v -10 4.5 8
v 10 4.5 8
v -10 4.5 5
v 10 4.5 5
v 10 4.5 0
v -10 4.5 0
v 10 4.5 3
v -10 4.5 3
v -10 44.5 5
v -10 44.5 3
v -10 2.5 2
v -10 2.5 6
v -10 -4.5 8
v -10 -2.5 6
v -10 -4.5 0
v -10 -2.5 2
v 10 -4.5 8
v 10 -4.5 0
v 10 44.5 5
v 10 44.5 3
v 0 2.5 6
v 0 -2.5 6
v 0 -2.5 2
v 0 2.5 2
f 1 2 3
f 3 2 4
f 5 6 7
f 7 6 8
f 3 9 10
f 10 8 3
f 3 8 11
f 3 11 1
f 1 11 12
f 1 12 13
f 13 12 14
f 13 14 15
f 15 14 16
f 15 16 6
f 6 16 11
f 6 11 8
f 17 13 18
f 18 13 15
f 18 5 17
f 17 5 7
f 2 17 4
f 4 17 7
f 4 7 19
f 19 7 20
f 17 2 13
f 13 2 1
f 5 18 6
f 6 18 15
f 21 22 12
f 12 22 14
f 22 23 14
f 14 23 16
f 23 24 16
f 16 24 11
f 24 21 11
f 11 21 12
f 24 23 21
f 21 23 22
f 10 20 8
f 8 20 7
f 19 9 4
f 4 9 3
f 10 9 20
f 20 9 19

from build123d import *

# Parameters (mm, degrees)
SKETCH2_W           = 20
SKETCH2_H           = 9
BOSS_EXTRUDE1_DEPTH = 8
SKETCH3_W           = 4
SKETCH3_H           = 5
CUT_EXTRUDE1_DEPTH  = 10
SKETCH6_W           = 20
SKETCH6_H           = 2
BOSS_EXTRUDE3_DEPTH = 40


with BuildPart() as part:
    # Sketch2 → Boss-Extrude1 (new body)
    with BuildSketch(Plane.XY):
        Rectangle(SKETCH2_W, SKETCH2_H)
    extrude(amount=BOSS_EXTRUDE1_DEPTH)

    # Sketch3 → Cut-Extrude1 (cut)
    with BuildSketch(Plane.ZY.offset(10)):
        with Locations((4, 0)):
            Rectangle(SKETCH3_W, SKETCH3_H)
    extrude(amount=-CUT_EXTRUDE1_DEPTH, mode=Mode.SUBTRACT)

    # Sketch6 → Boss-Extrude3 (add)
    with BuildSketch(Plane(origin=(0, 4.5, 0), x_dir=(1, 0, 0), z_dir=(0, 1, 0))):
        with Locations((0, -4)):
            Rectangle(SKETCH6_W, SKETCH6_H)
    extrude(amount=BOSS_EXTRUDE3_DEPTH)


solid = part.part
